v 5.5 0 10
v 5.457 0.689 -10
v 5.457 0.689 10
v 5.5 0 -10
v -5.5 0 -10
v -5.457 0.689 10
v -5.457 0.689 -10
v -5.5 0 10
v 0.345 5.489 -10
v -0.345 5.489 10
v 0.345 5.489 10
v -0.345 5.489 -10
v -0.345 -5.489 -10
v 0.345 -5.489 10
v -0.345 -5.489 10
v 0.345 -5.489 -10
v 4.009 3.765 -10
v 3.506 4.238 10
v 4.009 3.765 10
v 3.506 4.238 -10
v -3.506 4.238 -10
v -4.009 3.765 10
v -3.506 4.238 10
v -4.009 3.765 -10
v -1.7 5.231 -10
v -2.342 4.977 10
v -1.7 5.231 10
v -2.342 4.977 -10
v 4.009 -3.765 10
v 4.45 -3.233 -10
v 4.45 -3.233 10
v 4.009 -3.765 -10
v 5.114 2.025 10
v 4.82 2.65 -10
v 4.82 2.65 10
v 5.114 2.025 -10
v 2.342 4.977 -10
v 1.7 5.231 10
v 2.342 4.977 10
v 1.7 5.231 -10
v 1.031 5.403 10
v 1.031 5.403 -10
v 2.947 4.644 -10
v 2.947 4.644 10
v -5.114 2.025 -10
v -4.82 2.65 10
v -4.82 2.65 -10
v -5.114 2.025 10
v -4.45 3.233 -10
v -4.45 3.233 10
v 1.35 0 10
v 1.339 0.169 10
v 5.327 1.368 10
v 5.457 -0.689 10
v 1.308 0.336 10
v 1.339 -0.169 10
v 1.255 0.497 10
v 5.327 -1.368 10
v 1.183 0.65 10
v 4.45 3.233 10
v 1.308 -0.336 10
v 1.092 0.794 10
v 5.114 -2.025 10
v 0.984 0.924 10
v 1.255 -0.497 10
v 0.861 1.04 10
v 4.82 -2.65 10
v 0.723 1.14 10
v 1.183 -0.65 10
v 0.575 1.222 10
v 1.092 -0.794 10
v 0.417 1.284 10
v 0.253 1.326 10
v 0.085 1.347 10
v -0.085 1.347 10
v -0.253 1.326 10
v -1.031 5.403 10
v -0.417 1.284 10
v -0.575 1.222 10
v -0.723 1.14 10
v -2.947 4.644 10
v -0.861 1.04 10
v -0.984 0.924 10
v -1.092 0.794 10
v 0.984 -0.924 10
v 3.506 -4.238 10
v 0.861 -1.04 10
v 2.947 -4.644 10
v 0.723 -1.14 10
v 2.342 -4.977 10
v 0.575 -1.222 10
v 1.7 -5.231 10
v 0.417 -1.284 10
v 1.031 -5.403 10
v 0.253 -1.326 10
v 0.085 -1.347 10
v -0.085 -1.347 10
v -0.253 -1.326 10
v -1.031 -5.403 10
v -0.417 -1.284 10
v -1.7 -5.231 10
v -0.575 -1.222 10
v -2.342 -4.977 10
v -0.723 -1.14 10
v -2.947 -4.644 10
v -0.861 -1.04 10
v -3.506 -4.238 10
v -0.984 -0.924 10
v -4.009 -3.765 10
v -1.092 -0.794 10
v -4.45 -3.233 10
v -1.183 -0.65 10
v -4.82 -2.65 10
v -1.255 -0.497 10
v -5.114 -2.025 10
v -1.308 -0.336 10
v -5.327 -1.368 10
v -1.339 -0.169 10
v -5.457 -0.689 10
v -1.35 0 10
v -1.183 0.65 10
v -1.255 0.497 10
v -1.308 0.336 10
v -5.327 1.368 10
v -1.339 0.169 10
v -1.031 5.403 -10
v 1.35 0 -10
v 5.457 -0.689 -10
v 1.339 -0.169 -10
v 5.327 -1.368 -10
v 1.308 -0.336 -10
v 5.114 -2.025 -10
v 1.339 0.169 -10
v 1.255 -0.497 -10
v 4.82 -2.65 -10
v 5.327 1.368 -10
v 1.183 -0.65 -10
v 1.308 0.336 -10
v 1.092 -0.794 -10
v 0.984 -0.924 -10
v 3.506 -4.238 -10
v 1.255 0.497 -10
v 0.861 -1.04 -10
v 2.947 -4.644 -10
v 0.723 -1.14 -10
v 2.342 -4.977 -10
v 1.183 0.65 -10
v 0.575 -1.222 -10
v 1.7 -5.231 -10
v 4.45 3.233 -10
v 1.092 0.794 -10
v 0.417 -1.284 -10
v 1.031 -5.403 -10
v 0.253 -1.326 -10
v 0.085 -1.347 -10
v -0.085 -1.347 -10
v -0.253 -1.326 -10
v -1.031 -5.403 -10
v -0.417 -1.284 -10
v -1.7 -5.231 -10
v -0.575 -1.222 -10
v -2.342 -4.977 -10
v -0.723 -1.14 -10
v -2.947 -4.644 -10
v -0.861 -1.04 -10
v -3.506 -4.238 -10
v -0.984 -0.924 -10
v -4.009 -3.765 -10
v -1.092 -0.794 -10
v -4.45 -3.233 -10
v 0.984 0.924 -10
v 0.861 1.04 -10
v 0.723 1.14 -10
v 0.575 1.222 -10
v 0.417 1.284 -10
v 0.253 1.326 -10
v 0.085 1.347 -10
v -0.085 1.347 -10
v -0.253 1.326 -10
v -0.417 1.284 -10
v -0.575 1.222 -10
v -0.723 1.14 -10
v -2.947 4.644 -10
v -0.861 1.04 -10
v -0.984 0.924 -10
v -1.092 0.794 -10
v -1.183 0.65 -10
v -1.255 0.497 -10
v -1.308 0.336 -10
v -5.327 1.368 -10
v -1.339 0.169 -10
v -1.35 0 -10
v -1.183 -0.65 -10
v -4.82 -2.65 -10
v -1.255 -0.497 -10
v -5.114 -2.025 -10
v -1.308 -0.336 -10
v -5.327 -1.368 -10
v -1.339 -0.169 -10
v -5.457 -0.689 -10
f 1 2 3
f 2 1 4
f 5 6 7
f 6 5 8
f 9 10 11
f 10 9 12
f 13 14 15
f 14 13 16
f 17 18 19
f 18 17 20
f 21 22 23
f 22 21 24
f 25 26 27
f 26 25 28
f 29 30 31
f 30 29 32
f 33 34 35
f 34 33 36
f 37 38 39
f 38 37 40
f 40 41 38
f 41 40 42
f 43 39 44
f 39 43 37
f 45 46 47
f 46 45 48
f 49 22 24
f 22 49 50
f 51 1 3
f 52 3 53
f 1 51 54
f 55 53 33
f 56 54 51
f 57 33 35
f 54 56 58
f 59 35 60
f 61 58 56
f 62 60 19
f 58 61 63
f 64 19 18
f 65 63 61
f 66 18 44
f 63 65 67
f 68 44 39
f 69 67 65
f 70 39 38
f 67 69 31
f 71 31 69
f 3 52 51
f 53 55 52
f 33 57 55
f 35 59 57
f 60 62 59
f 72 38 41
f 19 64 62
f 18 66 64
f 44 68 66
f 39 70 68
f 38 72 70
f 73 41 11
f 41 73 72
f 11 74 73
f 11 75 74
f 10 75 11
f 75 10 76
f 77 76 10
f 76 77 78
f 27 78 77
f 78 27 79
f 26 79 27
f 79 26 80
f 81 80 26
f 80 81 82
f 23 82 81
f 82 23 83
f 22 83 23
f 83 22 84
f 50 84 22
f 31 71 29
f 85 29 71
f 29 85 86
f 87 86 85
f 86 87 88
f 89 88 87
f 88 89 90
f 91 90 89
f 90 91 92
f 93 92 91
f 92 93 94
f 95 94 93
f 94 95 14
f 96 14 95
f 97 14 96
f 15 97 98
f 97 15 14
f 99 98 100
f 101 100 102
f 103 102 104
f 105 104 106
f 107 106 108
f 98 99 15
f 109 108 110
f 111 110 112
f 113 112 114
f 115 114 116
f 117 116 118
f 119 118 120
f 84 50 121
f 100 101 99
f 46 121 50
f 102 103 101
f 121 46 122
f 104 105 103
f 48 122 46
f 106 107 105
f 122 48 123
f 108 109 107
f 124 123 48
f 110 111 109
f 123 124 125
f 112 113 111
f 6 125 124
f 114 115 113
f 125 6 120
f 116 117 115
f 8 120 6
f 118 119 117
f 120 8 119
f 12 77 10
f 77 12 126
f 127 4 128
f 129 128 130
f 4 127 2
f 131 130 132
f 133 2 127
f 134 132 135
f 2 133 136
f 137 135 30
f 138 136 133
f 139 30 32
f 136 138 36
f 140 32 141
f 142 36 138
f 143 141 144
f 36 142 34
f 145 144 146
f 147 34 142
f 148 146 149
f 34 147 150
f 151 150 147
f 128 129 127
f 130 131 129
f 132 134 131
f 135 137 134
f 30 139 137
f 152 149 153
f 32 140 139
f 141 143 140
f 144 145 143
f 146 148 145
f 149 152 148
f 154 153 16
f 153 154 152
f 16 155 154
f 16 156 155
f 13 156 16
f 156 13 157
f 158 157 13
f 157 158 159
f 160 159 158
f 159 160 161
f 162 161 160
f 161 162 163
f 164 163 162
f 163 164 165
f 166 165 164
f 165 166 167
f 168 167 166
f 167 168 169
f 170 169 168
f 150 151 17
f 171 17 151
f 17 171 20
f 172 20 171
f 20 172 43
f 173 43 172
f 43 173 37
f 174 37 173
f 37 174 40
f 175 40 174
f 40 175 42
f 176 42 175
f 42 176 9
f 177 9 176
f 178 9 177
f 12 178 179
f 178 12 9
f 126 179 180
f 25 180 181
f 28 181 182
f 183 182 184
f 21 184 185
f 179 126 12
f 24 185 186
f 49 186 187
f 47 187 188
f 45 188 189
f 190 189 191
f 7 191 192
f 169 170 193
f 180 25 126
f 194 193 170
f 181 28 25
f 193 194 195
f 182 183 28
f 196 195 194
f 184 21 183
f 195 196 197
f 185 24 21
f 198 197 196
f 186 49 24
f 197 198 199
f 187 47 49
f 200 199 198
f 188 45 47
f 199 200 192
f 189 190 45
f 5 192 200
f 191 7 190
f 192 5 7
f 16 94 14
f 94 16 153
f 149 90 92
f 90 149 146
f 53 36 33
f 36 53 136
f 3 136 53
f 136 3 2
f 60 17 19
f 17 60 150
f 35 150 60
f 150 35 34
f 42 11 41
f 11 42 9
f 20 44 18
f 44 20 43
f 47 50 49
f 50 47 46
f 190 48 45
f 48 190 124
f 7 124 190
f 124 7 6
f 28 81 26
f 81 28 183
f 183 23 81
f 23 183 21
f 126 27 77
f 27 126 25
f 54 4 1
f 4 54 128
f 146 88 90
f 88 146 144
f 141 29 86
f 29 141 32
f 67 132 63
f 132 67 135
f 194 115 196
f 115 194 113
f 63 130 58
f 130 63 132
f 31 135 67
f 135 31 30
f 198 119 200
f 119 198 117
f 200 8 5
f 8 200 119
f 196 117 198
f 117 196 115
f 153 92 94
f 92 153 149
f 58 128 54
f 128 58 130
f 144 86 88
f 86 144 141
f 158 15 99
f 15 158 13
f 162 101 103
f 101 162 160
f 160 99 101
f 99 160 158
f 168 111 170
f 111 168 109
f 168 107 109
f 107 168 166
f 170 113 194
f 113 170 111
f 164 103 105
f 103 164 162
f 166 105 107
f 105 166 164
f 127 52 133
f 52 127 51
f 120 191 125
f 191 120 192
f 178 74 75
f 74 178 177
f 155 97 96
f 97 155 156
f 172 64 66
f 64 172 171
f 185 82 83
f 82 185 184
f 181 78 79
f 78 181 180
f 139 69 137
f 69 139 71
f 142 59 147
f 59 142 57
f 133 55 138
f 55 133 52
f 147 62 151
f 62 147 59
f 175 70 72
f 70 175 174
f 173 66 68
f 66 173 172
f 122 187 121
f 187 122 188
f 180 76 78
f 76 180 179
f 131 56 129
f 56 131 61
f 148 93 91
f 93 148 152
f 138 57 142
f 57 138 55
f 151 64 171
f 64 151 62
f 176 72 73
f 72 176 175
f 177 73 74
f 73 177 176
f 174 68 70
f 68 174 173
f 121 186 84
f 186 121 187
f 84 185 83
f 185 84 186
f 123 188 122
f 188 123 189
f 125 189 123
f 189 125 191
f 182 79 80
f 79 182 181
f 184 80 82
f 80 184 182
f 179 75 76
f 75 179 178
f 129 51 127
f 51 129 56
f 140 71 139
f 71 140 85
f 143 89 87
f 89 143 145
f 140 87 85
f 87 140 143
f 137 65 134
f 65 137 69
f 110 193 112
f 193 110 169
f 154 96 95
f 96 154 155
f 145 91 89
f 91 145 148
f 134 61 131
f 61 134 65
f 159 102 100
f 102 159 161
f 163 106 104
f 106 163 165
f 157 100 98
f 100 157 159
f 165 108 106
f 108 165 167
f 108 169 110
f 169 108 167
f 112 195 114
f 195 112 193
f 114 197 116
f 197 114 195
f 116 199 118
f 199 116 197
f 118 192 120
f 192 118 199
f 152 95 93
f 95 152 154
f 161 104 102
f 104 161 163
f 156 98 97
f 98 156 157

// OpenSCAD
$fn = 50;


difference() {
	union() {
		translate(v = [0, 0, -10.0000000000]) {
			cylinder(h = 20, r = 5.5000000000);
		}
	}
	union() {
		translate(v = [0, 0, -100.0000000000]) {
			cylinder(h = 200, r = 1.3500000000);
		}
	}
}
